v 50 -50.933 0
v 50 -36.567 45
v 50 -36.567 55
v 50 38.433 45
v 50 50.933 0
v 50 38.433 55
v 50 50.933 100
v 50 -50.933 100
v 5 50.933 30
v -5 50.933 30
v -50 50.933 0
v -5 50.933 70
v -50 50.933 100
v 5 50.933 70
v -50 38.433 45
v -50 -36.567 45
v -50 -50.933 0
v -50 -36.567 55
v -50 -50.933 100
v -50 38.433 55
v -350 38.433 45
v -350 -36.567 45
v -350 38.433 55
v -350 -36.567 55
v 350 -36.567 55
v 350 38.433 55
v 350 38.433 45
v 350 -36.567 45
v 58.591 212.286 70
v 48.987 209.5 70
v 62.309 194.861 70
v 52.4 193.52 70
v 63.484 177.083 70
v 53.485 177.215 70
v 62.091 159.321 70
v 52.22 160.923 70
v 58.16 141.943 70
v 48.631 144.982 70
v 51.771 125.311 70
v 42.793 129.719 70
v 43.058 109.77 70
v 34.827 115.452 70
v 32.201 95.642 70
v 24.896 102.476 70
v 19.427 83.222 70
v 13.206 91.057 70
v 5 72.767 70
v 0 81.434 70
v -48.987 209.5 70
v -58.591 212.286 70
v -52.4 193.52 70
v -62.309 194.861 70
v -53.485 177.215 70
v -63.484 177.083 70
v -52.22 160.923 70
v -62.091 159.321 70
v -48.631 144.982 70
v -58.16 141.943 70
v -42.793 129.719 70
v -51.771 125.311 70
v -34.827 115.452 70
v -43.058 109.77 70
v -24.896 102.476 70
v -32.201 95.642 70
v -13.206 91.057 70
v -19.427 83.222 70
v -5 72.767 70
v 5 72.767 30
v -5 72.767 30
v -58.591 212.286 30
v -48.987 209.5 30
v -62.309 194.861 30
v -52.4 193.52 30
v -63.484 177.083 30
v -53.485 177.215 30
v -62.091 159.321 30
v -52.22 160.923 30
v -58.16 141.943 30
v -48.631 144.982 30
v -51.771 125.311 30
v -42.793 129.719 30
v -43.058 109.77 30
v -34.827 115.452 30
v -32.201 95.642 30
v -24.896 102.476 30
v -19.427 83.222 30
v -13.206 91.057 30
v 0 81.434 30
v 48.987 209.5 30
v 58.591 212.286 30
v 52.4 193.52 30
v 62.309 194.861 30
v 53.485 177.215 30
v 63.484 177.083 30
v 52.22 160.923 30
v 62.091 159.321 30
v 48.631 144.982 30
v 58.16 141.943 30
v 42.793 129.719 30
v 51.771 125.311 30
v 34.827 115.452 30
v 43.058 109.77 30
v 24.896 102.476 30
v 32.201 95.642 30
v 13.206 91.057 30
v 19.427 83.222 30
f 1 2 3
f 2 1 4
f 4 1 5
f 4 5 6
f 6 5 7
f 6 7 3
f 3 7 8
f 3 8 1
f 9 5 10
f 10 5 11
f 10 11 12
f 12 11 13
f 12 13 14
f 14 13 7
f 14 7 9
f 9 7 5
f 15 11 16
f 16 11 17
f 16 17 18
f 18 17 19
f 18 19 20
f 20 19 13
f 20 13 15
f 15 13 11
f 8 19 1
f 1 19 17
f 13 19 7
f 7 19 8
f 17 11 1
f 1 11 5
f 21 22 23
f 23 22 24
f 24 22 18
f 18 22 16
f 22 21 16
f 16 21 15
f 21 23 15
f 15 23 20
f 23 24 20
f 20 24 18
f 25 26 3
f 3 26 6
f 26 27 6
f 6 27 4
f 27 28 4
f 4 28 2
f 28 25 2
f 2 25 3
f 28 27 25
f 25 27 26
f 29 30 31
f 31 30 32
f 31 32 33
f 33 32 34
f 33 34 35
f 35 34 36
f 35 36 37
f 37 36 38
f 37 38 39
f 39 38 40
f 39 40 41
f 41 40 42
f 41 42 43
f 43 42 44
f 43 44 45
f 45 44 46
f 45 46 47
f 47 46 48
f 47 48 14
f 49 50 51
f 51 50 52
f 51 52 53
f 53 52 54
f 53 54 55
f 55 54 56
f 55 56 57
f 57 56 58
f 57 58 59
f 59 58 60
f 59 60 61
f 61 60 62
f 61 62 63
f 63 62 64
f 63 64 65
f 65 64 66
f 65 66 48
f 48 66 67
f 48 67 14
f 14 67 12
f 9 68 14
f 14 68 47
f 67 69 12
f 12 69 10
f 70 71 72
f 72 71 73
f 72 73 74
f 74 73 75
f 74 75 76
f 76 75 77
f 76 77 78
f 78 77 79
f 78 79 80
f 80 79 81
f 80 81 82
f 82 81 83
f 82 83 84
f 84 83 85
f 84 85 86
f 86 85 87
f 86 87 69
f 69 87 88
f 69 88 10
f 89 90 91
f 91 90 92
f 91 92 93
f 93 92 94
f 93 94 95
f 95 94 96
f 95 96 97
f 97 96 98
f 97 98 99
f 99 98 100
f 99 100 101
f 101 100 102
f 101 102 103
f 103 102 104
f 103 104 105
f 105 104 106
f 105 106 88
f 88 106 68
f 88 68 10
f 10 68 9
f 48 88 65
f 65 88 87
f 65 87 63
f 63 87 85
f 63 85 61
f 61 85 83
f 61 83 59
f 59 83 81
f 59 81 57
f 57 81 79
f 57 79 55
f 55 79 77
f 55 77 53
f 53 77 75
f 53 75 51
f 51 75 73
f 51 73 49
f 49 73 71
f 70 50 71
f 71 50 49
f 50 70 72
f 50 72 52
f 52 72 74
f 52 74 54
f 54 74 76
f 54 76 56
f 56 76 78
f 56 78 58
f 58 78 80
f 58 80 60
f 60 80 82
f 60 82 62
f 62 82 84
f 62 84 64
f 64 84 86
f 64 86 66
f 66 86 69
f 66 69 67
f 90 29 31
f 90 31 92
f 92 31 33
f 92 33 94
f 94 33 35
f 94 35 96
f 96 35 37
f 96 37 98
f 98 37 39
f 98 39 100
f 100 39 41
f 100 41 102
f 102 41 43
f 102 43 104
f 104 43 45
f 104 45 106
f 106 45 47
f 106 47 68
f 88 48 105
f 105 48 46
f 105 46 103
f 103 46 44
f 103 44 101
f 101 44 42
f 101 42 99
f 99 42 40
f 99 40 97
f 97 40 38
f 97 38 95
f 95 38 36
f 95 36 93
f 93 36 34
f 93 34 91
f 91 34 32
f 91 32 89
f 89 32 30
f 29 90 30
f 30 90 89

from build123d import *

# Parameters (mm, degrees)
SKETCH1_W                = 100
SKETCH1_H                = 101.866666666
BOSS_EXTRUDE1_DEPTH      = 100
BOSS_EXTRUDE2_DEPTH      = 300
BOSS_EXTRUDE2_DEPTH_BACK = 400
SKETCH2_W                = 10
SKETCH2_H                = 75
EXTRUDE_THIN1_START      = -20
EXTRUDE_THIN1_DEPTH      = 40


# Read off the part's stored shape, not the designer's step: Extrude-Thin1
with BuildPart() as part:
    # Sketch1 → Boss-Extrude1 (new body)
    with BuildSketch(Plane.XY):
        Rectangle(SKETCH1_W, SKETCH1_H)
    extrude(amount=BOSS_EXTRUDE1_DEPTH)

    # Sketch2 → Boss-Extrude2 (add, two sides: drawn at the far end of the back side and taken through both)
    with BuildSketch(Plane(origin=(50, 0, 0), x_dir=(0, 0, -1), z_dir=(1, 0, 0)).offset(-BOSS_EXTRUDE2_DEPTH_BACK)):
        with Locations((-50, 0.933333333)):
            Rectangle(SKETCH2_W, SKETCH2_H)
    extrude(amount=BOSS_EXTRUDE2_DEPTH + BOSS_EXTRUDE2_DEPTH_BACK)

    # Extrude-Thin1 outline → Extrude-Thin1 (add)
    with BuildSketch(Plane.XY.offset(50).offset(EXTRUDE_THIN1_START)):
        with BuildLine():
            Line((5, 50.933333333), (5, 72.767361549))
            ThreePointArc((5, 72.767361549), (55.2653102, 133.511715936), (58.591267344, 212.286178857))
            Line((58.591267344, 212.286178857), (48.987221146, 209.500089011))
            ThreePointArc((48.987221146, 209.500089011), (45.987027323, 137.245454908), (0, 81.433927153))
            ThreePointArc((0, 81.433927153), (-45.987027323, 137.245454908), (-48.987221146, 209.500089011))
            Line((-48.987221146, 209.500089011), (-58.591267344, 212.286178857))
            ThreePointArc((-58.591267344, 212.286178857), (-55.2653102, 133.511715936), (-5, 72.767361549))
            Line((-5, 72.767361549), (-5, 50.933333333))
            Line((-5, 50.933333333), (5, 50.933333333))
        make_face()
    extrude(amount=EXTRUDE_THIN1_DEPTH)


solid = part.part
